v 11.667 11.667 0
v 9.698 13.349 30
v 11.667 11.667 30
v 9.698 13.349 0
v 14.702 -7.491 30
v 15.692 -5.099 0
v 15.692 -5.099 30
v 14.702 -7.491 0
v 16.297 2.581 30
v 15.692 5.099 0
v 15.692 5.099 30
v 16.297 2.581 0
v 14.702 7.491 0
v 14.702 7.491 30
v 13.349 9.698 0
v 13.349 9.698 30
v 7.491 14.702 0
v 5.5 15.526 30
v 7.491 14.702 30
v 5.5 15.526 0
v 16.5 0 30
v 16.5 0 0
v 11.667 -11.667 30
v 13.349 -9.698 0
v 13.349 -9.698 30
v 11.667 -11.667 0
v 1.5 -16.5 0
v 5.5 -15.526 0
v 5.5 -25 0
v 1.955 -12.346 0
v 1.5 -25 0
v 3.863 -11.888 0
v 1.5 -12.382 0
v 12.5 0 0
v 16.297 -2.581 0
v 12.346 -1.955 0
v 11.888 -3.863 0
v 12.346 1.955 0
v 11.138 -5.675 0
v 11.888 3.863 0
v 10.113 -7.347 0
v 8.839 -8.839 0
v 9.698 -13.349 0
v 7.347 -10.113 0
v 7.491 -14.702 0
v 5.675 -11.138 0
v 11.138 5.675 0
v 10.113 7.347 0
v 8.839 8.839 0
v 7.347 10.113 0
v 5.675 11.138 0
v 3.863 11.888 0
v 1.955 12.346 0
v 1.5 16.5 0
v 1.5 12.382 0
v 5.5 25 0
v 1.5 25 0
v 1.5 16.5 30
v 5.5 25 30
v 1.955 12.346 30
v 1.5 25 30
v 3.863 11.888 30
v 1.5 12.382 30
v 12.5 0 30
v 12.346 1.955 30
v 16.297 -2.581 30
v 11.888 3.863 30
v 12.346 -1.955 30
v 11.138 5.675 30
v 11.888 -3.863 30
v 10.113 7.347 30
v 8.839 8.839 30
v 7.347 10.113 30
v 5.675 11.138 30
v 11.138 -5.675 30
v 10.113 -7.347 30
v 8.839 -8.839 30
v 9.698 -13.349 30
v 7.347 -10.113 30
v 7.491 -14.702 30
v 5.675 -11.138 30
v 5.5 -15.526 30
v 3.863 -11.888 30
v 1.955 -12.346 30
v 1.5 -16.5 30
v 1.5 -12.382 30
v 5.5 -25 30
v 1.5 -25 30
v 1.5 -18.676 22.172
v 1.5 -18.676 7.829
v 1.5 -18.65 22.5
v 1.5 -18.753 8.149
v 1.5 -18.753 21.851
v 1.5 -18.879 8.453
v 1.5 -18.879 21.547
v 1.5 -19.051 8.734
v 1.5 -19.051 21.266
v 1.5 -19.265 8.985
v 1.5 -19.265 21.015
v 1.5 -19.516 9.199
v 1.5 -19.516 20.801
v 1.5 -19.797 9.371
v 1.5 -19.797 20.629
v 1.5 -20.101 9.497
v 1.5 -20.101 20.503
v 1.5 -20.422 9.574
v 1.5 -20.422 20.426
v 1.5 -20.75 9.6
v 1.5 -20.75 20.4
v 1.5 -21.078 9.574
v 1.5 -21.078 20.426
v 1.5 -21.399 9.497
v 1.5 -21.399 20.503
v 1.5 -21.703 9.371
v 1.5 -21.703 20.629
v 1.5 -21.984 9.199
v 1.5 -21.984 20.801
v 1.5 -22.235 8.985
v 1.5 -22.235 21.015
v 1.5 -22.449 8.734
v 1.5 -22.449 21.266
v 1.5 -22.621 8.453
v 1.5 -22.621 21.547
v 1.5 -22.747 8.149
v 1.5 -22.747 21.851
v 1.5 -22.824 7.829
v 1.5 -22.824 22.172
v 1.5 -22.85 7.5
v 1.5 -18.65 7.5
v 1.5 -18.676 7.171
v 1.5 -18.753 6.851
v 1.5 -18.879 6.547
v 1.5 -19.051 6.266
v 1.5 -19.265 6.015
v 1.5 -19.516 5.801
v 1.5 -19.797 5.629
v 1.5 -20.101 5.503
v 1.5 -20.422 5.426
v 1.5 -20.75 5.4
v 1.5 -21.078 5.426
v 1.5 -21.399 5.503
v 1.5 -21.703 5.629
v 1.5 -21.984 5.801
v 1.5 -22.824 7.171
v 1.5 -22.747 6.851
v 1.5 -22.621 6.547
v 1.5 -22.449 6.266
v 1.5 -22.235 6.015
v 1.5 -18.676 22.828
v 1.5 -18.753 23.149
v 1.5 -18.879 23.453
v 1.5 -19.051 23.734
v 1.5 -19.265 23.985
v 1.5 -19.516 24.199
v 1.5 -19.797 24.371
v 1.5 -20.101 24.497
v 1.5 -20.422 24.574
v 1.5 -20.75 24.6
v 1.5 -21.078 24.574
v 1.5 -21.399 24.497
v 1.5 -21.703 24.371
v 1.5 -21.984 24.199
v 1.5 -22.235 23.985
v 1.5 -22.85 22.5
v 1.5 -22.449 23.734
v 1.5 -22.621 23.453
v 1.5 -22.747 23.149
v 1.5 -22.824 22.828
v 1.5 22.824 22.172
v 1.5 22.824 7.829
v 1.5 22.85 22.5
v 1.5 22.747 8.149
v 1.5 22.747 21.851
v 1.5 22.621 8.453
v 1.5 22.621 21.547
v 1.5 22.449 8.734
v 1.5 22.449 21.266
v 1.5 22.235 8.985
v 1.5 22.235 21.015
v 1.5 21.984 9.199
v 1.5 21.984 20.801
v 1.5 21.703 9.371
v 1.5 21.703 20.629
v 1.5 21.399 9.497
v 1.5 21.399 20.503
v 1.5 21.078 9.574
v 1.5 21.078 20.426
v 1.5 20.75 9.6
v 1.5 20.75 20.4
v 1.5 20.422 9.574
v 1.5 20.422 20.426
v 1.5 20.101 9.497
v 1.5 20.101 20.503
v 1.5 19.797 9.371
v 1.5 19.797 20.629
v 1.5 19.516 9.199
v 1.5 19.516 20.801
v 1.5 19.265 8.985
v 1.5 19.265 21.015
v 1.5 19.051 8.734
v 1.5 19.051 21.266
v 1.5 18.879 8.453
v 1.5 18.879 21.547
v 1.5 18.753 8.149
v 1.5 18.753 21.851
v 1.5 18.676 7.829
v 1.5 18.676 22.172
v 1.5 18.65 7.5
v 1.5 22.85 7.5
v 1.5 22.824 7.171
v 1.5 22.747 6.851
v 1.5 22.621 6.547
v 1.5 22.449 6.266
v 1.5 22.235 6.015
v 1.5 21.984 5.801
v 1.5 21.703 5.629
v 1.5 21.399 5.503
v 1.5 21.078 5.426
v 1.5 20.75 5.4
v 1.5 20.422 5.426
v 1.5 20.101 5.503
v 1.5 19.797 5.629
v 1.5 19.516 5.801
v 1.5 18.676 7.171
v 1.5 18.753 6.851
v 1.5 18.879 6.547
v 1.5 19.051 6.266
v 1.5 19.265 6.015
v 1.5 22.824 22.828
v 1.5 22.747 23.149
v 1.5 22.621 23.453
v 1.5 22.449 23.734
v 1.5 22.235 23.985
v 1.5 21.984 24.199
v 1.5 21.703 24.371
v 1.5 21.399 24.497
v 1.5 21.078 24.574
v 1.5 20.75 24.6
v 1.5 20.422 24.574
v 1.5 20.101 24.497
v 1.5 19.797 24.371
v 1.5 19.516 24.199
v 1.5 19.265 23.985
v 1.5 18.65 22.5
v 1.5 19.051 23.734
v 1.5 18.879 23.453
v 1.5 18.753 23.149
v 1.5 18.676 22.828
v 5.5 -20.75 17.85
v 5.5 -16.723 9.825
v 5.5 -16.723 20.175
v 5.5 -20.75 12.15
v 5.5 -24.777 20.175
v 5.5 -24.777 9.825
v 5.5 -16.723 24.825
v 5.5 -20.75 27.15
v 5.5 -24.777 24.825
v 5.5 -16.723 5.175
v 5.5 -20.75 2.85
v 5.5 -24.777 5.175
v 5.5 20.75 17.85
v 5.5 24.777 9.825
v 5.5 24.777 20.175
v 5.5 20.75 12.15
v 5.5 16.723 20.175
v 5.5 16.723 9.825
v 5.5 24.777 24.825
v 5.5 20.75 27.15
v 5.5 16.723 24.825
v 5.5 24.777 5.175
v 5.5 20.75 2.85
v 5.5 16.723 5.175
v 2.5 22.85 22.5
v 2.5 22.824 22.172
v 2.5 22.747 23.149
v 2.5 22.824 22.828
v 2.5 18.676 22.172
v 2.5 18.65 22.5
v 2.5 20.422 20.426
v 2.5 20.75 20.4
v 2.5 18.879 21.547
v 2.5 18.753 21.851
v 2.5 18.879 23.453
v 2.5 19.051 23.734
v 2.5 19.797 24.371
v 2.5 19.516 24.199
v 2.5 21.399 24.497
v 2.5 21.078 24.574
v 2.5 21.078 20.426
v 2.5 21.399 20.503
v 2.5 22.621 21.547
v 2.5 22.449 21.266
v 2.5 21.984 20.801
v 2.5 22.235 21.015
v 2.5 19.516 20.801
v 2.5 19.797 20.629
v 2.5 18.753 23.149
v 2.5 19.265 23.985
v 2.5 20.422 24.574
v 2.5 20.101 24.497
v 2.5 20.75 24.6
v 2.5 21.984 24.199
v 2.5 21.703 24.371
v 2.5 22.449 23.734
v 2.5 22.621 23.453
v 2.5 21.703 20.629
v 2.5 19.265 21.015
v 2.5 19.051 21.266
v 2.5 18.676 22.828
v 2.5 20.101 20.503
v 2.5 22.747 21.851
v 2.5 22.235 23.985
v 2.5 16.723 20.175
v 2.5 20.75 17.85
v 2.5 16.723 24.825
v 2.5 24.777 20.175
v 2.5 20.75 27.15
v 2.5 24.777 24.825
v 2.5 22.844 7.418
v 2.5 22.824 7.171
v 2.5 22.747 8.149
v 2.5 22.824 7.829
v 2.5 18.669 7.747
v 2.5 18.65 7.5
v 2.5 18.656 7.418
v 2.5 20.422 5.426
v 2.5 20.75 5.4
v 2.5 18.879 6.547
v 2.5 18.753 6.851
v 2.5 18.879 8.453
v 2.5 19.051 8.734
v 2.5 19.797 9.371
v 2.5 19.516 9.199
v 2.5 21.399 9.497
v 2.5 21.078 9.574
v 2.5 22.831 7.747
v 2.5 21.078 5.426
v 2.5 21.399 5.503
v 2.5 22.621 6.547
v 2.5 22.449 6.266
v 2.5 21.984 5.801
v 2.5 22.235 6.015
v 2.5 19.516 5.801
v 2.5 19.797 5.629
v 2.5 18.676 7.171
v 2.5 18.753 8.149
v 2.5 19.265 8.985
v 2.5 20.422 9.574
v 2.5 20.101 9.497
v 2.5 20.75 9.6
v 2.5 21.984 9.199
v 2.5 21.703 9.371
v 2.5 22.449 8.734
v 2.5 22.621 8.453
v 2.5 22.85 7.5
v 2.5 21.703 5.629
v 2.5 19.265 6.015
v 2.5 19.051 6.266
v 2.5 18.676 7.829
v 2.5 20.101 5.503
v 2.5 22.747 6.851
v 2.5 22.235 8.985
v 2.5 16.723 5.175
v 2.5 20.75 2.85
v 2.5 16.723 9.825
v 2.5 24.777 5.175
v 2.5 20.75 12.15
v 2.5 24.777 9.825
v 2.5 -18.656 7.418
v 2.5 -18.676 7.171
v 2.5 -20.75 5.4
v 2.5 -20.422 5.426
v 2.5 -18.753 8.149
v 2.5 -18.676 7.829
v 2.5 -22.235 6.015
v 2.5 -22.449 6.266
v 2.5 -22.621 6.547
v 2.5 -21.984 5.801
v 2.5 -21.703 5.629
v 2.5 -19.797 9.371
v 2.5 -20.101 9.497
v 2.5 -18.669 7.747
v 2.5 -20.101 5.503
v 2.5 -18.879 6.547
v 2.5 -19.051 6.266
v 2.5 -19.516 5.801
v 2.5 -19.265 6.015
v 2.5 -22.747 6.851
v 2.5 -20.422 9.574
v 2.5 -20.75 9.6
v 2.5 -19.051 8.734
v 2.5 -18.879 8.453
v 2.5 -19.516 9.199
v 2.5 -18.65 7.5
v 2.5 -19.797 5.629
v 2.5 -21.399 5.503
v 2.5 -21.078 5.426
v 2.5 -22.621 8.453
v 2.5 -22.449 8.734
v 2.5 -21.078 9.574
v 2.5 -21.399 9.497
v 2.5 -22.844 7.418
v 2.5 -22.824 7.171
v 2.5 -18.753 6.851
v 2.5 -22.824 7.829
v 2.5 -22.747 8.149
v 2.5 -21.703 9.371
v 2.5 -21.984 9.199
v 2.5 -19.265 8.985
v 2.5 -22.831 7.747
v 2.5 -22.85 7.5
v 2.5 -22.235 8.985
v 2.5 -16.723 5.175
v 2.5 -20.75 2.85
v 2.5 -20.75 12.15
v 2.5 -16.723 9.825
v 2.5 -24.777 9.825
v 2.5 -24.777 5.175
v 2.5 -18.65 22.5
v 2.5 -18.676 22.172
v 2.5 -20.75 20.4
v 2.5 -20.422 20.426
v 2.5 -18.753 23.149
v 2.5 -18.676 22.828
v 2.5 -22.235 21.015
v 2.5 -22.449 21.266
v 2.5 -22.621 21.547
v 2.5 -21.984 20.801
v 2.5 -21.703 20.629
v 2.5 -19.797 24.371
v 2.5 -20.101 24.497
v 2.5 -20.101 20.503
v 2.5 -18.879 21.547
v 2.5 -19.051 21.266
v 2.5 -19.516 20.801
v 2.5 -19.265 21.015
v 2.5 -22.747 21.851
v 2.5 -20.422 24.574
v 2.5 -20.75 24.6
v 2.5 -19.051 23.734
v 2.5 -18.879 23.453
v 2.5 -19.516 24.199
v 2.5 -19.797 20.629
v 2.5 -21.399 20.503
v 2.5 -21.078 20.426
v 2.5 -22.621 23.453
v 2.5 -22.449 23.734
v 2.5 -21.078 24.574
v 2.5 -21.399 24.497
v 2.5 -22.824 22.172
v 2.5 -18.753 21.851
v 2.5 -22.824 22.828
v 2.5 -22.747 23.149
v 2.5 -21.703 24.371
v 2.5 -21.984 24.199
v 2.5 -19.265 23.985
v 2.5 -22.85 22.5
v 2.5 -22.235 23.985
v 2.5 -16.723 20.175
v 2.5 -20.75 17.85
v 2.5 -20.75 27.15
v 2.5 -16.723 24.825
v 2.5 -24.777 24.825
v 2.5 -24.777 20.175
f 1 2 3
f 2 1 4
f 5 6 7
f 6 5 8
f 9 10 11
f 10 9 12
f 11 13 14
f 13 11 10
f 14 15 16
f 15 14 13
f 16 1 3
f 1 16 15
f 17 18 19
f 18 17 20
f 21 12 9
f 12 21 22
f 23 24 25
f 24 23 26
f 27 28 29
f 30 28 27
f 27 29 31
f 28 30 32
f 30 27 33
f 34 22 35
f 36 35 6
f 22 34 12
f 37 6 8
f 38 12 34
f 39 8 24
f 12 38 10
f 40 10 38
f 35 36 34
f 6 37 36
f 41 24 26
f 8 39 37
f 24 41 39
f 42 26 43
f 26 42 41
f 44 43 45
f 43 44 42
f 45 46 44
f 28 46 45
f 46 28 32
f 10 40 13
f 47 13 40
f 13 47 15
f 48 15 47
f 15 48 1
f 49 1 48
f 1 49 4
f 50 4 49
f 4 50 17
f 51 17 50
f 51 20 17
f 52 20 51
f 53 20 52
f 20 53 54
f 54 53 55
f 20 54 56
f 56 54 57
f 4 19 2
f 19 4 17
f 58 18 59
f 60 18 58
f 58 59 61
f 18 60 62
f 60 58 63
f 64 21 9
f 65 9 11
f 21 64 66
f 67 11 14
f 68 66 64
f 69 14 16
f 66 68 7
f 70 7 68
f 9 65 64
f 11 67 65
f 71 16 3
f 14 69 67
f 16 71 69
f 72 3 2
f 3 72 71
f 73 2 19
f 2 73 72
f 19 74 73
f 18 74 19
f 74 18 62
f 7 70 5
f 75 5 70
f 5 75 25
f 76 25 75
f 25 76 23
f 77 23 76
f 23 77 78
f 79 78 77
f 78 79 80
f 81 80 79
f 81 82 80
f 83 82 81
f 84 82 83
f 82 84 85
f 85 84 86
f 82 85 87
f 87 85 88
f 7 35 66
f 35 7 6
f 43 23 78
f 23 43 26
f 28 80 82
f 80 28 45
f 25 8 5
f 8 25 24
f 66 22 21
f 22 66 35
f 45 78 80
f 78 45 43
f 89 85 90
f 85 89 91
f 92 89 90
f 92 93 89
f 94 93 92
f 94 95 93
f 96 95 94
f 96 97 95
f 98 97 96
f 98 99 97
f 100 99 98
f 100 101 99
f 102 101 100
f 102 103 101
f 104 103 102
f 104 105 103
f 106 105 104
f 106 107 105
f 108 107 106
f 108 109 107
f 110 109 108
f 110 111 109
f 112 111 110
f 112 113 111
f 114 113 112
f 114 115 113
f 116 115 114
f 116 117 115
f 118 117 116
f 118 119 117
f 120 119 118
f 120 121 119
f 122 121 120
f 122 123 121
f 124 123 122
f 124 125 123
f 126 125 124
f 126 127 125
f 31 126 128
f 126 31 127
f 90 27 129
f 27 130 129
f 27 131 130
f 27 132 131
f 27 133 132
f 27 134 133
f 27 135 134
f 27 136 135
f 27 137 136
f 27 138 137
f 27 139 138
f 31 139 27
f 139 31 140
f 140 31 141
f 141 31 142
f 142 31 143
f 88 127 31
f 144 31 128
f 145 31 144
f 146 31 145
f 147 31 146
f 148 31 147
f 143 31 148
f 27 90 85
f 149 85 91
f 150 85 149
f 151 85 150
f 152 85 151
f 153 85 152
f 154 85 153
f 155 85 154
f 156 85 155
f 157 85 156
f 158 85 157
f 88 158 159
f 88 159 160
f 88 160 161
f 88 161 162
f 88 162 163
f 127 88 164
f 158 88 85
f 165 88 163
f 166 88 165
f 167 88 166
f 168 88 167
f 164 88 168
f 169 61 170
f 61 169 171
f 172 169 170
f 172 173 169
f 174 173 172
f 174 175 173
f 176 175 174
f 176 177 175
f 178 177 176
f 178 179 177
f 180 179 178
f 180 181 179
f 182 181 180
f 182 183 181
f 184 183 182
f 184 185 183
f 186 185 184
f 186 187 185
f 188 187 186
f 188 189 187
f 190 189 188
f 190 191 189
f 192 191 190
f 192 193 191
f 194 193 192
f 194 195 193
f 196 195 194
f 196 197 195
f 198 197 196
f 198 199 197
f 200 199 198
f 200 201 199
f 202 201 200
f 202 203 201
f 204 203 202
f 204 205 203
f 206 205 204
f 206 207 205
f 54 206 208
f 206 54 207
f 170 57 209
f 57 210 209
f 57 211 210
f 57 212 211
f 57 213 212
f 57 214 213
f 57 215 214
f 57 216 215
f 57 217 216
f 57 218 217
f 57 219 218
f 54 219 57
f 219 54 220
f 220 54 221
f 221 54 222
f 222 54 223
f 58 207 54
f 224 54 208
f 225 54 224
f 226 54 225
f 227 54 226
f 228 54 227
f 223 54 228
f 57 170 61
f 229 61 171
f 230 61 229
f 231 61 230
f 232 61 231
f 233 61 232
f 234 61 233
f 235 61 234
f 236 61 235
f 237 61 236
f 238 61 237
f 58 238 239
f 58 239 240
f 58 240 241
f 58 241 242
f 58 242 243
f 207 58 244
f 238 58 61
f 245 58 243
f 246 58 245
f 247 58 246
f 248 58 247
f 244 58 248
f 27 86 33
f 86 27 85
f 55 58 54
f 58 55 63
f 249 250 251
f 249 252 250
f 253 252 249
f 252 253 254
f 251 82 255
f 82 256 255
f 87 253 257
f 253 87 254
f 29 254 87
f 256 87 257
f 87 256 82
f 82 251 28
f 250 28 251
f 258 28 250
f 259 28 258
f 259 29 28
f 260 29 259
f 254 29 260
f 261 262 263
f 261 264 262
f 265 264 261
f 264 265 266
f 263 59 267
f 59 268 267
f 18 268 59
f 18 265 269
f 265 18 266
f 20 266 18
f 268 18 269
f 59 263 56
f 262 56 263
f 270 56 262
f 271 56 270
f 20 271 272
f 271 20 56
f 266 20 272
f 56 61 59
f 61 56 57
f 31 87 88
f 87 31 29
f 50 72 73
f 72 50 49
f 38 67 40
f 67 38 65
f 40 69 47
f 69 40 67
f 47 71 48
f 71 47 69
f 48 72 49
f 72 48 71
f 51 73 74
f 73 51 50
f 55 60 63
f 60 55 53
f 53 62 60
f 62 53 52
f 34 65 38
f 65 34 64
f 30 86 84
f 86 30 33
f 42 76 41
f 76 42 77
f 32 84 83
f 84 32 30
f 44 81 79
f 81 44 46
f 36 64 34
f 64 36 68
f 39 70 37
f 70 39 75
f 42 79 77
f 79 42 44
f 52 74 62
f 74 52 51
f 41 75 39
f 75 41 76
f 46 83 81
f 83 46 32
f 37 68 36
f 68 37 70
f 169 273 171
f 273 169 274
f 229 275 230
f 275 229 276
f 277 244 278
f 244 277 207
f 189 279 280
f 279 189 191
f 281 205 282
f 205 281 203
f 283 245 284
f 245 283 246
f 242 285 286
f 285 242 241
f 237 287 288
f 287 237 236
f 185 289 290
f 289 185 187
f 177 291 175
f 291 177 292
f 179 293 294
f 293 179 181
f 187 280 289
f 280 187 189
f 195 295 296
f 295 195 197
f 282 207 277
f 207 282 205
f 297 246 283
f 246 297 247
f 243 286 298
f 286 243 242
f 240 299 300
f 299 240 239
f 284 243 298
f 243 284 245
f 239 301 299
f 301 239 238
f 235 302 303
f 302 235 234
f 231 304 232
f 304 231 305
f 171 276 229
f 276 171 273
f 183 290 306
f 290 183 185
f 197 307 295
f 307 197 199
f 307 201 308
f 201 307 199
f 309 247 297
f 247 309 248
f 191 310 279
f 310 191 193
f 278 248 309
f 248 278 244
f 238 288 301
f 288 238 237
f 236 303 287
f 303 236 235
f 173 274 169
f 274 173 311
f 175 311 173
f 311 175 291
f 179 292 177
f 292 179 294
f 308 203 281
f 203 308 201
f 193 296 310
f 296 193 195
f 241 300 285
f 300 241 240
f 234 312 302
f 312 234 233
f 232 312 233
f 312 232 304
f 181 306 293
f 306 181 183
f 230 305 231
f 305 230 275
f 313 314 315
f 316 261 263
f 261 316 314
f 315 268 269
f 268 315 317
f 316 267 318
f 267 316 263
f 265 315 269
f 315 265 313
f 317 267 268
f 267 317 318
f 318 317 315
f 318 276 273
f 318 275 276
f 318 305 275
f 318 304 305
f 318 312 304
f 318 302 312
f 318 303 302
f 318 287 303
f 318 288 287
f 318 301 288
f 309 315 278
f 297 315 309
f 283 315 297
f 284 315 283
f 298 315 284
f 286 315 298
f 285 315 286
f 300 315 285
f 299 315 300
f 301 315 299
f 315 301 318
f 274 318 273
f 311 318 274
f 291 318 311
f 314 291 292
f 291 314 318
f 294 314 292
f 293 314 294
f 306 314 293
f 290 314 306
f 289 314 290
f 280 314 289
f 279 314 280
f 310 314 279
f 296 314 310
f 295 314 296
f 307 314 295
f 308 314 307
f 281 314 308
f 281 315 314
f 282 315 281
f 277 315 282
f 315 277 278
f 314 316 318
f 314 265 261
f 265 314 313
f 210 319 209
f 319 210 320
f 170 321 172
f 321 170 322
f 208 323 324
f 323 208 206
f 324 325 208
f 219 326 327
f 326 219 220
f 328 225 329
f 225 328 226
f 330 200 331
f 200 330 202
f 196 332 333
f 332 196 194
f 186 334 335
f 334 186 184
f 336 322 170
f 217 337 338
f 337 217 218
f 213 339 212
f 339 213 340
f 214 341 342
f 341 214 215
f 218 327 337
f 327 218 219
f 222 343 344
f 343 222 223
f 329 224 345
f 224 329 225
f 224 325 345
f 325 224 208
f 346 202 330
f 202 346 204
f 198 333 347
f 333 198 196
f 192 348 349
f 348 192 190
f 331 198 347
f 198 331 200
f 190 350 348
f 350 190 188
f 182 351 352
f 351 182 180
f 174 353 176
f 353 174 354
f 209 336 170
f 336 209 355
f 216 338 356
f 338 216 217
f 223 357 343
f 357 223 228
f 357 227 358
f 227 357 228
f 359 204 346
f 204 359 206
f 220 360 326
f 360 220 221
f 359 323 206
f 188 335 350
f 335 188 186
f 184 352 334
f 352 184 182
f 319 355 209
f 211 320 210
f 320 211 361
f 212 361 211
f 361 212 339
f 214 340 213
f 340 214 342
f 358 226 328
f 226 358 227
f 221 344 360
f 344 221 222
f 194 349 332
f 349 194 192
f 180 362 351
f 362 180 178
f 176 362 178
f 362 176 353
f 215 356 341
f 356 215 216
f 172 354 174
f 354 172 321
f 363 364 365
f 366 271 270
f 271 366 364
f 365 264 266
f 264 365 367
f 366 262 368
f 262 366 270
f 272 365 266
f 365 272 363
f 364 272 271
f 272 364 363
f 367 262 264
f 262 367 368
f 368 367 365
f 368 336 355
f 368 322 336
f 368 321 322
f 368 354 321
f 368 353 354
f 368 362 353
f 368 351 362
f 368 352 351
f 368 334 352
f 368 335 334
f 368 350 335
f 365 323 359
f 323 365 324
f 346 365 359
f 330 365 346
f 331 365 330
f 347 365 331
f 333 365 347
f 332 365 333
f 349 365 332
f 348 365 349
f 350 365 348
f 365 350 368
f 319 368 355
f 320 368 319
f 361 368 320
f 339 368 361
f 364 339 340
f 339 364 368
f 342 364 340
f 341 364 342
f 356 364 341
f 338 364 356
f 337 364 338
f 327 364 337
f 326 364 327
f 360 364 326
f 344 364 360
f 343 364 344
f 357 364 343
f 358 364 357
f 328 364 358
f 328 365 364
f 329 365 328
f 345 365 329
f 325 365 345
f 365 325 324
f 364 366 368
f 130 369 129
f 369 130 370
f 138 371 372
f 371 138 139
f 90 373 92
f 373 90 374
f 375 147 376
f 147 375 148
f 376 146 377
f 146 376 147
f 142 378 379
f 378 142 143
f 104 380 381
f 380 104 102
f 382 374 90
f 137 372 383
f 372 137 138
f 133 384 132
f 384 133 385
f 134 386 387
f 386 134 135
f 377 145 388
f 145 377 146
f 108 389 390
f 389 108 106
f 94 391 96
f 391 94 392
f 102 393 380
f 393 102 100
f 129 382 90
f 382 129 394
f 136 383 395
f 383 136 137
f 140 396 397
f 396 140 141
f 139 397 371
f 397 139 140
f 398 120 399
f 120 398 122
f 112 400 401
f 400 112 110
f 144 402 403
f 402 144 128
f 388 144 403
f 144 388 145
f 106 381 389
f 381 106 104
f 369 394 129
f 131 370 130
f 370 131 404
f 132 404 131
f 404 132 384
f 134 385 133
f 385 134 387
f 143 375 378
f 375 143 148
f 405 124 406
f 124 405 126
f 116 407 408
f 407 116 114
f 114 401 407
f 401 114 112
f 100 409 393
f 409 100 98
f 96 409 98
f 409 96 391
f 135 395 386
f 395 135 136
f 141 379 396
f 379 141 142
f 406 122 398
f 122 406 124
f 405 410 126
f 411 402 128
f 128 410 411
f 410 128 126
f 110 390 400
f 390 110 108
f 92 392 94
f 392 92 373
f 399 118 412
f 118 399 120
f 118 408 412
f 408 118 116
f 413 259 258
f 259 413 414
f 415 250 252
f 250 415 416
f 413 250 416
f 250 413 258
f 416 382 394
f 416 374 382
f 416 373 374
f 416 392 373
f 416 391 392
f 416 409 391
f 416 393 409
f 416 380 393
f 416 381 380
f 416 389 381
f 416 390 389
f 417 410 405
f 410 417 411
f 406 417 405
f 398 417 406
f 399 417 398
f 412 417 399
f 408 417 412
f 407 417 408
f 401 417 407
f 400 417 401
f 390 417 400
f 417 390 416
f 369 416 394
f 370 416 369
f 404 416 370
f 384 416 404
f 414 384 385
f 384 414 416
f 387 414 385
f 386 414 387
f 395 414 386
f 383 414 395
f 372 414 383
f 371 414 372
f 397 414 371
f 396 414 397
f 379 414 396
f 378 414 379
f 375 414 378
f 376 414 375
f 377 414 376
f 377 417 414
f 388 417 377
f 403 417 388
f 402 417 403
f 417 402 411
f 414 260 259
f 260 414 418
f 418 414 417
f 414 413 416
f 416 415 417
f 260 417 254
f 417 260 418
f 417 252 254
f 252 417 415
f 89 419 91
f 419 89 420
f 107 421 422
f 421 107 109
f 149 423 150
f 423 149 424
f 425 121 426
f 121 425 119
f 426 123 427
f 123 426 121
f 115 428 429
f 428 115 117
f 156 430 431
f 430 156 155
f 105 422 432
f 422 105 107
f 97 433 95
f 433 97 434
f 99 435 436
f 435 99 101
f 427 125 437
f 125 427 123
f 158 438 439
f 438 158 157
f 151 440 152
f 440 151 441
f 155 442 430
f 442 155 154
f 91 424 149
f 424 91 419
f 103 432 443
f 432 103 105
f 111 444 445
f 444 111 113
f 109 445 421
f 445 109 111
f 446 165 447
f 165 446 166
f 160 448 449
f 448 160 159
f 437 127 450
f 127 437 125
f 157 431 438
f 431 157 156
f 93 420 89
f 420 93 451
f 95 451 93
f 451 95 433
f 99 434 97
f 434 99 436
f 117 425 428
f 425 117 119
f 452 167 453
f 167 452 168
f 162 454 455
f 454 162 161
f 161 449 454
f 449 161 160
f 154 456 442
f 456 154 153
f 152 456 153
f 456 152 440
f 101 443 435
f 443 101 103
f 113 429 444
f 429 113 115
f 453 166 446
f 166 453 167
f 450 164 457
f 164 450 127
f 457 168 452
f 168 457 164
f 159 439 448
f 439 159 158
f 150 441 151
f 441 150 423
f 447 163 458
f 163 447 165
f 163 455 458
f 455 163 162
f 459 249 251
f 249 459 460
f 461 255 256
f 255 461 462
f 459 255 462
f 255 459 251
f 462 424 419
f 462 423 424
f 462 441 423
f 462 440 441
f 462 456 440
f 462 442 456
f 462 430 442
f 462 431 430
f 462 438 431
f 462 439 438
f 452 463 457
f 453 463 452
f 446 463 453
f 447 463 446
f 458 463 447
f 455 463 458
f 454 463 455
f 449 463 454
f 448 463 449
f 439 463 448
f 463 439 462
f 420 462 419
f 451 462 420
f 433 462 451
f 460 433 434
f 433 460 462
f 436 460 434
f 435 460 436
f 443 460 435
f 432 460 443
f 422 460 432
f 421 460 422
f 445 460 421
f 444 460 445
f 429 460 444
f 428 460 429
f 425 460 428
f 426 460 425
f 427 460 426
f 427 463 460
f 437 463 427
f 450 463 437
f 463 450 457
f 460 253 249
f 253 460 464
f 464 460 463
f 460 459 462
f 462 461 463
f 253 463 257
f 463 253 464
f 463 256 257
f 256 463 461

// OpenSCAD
// file: ../SRC/ISLHOLDER01A_D04.scad
$fn=40; // model faces resolution.
include <../configuration2.scad>


//Drzak na sloup - cast bez drzaku anemometru
module ISLHOLDER01A_D04(){
	
difference()
    {
    union()
        {
        //základní válec
        cylinder(h=D02_vyska_uchytky,r=(D02_prumer_obruby+2*D02_sila_materialu)/2,center=true);
		//úchytové plošky		
        translate([D02_dotahova_vzdalenost+D02_sila_materialu/2,0,0]){cube([D02_sila_materialu,D02_delka_celeho_uchytu,D02_vyska_uchytky],center=true);}
		}
    
    //válec na odečet
    cylinder(h=D02_vyska_uchytky+0.01,r=D02_prumer_obruby/2,center=true);     
	        
    //kvádr na odecet
	translate([D02_dotahova_vzdalenost-(D02_prumer_obruby+2*D02_sila_materialu)/2,0,0]){cube([D02_prumer_obruby+2*D02_sila_materialu,D02_prumer_obruby+2*D02_sila_materialu,D02_vyska_uchytky+0.01],center=true);}
		
	//otvory na sroub
	translate([D02_dotahova_vzdalenost,(D02_delka_celeho_uchytu/2-D02_prumer_obruby/2-D02_sila_materialu)/2+D02_prumer_obruby/2+D02_sila_materialu,D02_vyska_uchytky/4]){rotate([0,90,0]){cylinder(h=D02_sila_materialu+0.01,r=D02_prumer_uchytneho_sroubu/2);}}
    
     //drzak matky
    translate([D02_dotahova_vzdalenost+D02_sila_materialu-D02_vyska_matky,(D02_delka_celeho_uchytu/2-D02_prumer_obruby/2-D02_sila_materialu)/2+D02_prumer_obruby/2+D02_sila_materialu,D02_vyska_uchytky/4]){rotate([0,90,0]){ cylinder (h = D02_vyska_matky+0.01, r= (D02_sirka_matky+0.2)/2, $fn=6);}}
   
     
        
    translate([D02_dotahova_vzdalenost,(D02_delka_celeho_uchytu/2-D02_prumer_obruby/2-D02_sila_materialu)/2+D02_prumer_obruby/2+D02_sila_materialu,-D02_vyska_uchytky/4]){rotate([0,90,0]){cylinder(h=D02_sila_materialu+0.01,r=D02_prumer_uchytneho_sroubu/2);}}
    
     //drzak matky
    translate([D02_dotahova_vzdalenost+D02_sila_materialu-D02_vyska_matky,(D02_delka_celeho_uchytu/2-D02_prumer_obruby/2-D02_sila_materialu)/2+D02_prumer_obruby/2+D02_sila_materialu,-D02_vyska_uchytky/4]){rotate([0,90,0]){ cylinder (h = D02_vyska_matky+0.01, r= (D02_sirka_matky+0.2)/2, $fn=6);}}
        
	translate([D02_dotahova_vzdalenost,-((D02_delka_celeho_uchytu/2-D02_prumer_obruby/2-D02_sila_materialu)/2+D02_prumer_obruby/2+D02_sila_materialu),-D02_vyska_uchytky/4]){rotate([0,90,0]){cylinder(h=D02_sila_materialu+0.01,r=D02_prumer_uchytneho_sroubu/2);}}
    
     //drzak matky
    translate([D02_dotahova_vzdalenost+D02_sila_materialu-D02_vyska_matky,-((D02_delka_celeho_uchytu/2-D02_prumer_obruby/2-D02_sila_materialu)/2+D02_prumer_obruby/2+D02_sila_materialu),-D02_vyska_uchytky/4]){rotate([0,90,0]){ cylinder (h = D02_vyska_matky+0.01, r= (D02_sirka_matky+0.2)/2, $fn=6);}}

    translate([D02_dotahova_vzdalenost,-((D02_delka_celeho_uchytu/2-D02_prumer_obruby/2-D02_sila_materialu)/2+D02_prumer_obruby/2+D02_sila_materialu),D02_vyska_uchytky/4]){rotate([0,90,0]){cylinder(h=D02_sila_materialu+0.01,r=D02_prumer_uchytneho_sroubu/2);}}	
    
     //drzak matky
    translate([D02_dotahova_vzdalenost+D02_sila_materialu-D02_vyska_matky,-((D02_delka_celeho_uchytu/2-D02_prumer_obruby/2-D02_sila_materialu)/2+D02_prumer_obruby/2+D02_sila_materialu),D02_vyska_uchytky/4]){rotate([0,90,0]){ cylinder (h = D02_vyska_matky+0.01, r= (D02_sirka_matky+0.2)/2, $fn=6);}}
	
    }
}

module ISLHOLDER01A_D04_2(){
	
difference()
    {
    union()
        {
        //základní válec
        cylinder(h=D02_vyska_uchytky,r=(D02_prumer_obruby+2*D02_sila_materialu)/2,center=true);
		//úchytové plošky		
        translate([D02_dotahova_vzdalenost+D02_sila_materialu/2,0,0]){cube([D02_sila_materialu,D02_delka_celeho_uchytu,D02_vyska_uchytky],center=true);}
		}
    
    //válec na odečet
    cylinder(h=D02_vyska_uchytky+0.01,r=D02_prumer_obruby/2,center=true);     
	        
    //kvádr na odecet
	translate([D02_dotahova_vzdalenost-(D02_prumer_obruby+2*D02_sila_materialu)/2,0,0]){cube([D02_prumer_obruby+2*D02_sila_materialu,D02_prumer_obruby+2*D02_sila_materialu,D02_vyska_uchytky+0.01],center=true);}
		
	//otvory na sroub
	translate([D02_dotahova_vzdalenost,(D02_delka_celeho_uchytu/2-D02_prumer_obruby/2-D02_sila_materialu)/2+D02_prumer_obruby/2+D02_sila_materialu,D02_vyska_uchytky/4]){rotate([0,90,0]){cylinder(h=D02_sila_materialu+0.01,r=D02_prumer_uchytneho_sroubu/2);}}
    
    
   
     
        
    translate([D02_dotahova_vzdalenost,(D02_delka_celeho_uchytu/2-D02_prumer_obruby/2-D02_sila_materialu)/2+D02_prumer_obruby/2+D02_sila_materialu,-D02_vyska_uchytky/4]){rotate([0,90,0]){cylinder(h=D02_sila_materialu+0.01,r=D02_prumer_uchytneho_sroubu/2);}}
    
     
        
	translate([D02_dotahova_vzdalenost,-((D02_delka_celeho_uchytu/2-D02_prumer_obruby/2-D02_sila_materialu)/2+D02_prumer_obruby/2+D02_sila_materialu),-D02_vyska_uchytky/4]){rotate([0,90,0]){cylinder(h=D02_sila_materialu+0.01,r=D02_prumer_uchytneho_sroubu/2);}}
    
    

    translate([D02_dotahova_vzdalenost,-((D02_delka_celeho_uchytu/2-D02_prumer_obruby/2-D02_sila_materialu)/2+D02_prumer_obruby/2+D02_sila_materialu),D02_vyska_uchytky/4]){rotate([0,90,0]){cylinder(h=D02_sila_materialu+0.01,r=D02_prumer_uchytneho_sroubu/2);}}	
    
    
	
    }
}


//ISLHOLDER01A_D02();
// file: ../configuration2.scad
$fn=40; // model faces resolution.

//Parametry pro D03 a D04
//Nastavení držáku zkumavky
//----------------------------------------------------------------
//----------------------------------------------------------------
//není potřeba měnit
S01_prumer_vnitrni=40;
S01_tolerance_zavit=1.5;

S01_sila_materialu=1.3; //sila výtuhy

//D03 - uchyt velky
D01_material_pod_zavitem=5;
D01_material_za_zavitem=3;
D01_material_pred_zavitem=2;
D01_delka_tyce=20;
D01_sirka_tyce=15;

//D04 - uchyt na sloup
D02_sila_materialu=4;
D02_vyska_uchytky=30;
D02_prumer_obruby=25; //pruměr zkumavky
D02_delka_celeho_uchytu=50;
D02_dotahova_vzdalenost=1.5;
D02_prumer_uchytneho_sroubu=4.2;
D02_sirka_matky=9.1; //pro M4
D02_vyska_matky=3;
// main file
$fn=100; // model faces resolution.
include <../configuration2.scad>
use <../SRC/ISLHOLDER01A_D04.scad>

rotate([0, 0, 0])
      translate([0,0,D02_vyska_uchytky/2])
        ISLHOLDER01A_D04();

            
